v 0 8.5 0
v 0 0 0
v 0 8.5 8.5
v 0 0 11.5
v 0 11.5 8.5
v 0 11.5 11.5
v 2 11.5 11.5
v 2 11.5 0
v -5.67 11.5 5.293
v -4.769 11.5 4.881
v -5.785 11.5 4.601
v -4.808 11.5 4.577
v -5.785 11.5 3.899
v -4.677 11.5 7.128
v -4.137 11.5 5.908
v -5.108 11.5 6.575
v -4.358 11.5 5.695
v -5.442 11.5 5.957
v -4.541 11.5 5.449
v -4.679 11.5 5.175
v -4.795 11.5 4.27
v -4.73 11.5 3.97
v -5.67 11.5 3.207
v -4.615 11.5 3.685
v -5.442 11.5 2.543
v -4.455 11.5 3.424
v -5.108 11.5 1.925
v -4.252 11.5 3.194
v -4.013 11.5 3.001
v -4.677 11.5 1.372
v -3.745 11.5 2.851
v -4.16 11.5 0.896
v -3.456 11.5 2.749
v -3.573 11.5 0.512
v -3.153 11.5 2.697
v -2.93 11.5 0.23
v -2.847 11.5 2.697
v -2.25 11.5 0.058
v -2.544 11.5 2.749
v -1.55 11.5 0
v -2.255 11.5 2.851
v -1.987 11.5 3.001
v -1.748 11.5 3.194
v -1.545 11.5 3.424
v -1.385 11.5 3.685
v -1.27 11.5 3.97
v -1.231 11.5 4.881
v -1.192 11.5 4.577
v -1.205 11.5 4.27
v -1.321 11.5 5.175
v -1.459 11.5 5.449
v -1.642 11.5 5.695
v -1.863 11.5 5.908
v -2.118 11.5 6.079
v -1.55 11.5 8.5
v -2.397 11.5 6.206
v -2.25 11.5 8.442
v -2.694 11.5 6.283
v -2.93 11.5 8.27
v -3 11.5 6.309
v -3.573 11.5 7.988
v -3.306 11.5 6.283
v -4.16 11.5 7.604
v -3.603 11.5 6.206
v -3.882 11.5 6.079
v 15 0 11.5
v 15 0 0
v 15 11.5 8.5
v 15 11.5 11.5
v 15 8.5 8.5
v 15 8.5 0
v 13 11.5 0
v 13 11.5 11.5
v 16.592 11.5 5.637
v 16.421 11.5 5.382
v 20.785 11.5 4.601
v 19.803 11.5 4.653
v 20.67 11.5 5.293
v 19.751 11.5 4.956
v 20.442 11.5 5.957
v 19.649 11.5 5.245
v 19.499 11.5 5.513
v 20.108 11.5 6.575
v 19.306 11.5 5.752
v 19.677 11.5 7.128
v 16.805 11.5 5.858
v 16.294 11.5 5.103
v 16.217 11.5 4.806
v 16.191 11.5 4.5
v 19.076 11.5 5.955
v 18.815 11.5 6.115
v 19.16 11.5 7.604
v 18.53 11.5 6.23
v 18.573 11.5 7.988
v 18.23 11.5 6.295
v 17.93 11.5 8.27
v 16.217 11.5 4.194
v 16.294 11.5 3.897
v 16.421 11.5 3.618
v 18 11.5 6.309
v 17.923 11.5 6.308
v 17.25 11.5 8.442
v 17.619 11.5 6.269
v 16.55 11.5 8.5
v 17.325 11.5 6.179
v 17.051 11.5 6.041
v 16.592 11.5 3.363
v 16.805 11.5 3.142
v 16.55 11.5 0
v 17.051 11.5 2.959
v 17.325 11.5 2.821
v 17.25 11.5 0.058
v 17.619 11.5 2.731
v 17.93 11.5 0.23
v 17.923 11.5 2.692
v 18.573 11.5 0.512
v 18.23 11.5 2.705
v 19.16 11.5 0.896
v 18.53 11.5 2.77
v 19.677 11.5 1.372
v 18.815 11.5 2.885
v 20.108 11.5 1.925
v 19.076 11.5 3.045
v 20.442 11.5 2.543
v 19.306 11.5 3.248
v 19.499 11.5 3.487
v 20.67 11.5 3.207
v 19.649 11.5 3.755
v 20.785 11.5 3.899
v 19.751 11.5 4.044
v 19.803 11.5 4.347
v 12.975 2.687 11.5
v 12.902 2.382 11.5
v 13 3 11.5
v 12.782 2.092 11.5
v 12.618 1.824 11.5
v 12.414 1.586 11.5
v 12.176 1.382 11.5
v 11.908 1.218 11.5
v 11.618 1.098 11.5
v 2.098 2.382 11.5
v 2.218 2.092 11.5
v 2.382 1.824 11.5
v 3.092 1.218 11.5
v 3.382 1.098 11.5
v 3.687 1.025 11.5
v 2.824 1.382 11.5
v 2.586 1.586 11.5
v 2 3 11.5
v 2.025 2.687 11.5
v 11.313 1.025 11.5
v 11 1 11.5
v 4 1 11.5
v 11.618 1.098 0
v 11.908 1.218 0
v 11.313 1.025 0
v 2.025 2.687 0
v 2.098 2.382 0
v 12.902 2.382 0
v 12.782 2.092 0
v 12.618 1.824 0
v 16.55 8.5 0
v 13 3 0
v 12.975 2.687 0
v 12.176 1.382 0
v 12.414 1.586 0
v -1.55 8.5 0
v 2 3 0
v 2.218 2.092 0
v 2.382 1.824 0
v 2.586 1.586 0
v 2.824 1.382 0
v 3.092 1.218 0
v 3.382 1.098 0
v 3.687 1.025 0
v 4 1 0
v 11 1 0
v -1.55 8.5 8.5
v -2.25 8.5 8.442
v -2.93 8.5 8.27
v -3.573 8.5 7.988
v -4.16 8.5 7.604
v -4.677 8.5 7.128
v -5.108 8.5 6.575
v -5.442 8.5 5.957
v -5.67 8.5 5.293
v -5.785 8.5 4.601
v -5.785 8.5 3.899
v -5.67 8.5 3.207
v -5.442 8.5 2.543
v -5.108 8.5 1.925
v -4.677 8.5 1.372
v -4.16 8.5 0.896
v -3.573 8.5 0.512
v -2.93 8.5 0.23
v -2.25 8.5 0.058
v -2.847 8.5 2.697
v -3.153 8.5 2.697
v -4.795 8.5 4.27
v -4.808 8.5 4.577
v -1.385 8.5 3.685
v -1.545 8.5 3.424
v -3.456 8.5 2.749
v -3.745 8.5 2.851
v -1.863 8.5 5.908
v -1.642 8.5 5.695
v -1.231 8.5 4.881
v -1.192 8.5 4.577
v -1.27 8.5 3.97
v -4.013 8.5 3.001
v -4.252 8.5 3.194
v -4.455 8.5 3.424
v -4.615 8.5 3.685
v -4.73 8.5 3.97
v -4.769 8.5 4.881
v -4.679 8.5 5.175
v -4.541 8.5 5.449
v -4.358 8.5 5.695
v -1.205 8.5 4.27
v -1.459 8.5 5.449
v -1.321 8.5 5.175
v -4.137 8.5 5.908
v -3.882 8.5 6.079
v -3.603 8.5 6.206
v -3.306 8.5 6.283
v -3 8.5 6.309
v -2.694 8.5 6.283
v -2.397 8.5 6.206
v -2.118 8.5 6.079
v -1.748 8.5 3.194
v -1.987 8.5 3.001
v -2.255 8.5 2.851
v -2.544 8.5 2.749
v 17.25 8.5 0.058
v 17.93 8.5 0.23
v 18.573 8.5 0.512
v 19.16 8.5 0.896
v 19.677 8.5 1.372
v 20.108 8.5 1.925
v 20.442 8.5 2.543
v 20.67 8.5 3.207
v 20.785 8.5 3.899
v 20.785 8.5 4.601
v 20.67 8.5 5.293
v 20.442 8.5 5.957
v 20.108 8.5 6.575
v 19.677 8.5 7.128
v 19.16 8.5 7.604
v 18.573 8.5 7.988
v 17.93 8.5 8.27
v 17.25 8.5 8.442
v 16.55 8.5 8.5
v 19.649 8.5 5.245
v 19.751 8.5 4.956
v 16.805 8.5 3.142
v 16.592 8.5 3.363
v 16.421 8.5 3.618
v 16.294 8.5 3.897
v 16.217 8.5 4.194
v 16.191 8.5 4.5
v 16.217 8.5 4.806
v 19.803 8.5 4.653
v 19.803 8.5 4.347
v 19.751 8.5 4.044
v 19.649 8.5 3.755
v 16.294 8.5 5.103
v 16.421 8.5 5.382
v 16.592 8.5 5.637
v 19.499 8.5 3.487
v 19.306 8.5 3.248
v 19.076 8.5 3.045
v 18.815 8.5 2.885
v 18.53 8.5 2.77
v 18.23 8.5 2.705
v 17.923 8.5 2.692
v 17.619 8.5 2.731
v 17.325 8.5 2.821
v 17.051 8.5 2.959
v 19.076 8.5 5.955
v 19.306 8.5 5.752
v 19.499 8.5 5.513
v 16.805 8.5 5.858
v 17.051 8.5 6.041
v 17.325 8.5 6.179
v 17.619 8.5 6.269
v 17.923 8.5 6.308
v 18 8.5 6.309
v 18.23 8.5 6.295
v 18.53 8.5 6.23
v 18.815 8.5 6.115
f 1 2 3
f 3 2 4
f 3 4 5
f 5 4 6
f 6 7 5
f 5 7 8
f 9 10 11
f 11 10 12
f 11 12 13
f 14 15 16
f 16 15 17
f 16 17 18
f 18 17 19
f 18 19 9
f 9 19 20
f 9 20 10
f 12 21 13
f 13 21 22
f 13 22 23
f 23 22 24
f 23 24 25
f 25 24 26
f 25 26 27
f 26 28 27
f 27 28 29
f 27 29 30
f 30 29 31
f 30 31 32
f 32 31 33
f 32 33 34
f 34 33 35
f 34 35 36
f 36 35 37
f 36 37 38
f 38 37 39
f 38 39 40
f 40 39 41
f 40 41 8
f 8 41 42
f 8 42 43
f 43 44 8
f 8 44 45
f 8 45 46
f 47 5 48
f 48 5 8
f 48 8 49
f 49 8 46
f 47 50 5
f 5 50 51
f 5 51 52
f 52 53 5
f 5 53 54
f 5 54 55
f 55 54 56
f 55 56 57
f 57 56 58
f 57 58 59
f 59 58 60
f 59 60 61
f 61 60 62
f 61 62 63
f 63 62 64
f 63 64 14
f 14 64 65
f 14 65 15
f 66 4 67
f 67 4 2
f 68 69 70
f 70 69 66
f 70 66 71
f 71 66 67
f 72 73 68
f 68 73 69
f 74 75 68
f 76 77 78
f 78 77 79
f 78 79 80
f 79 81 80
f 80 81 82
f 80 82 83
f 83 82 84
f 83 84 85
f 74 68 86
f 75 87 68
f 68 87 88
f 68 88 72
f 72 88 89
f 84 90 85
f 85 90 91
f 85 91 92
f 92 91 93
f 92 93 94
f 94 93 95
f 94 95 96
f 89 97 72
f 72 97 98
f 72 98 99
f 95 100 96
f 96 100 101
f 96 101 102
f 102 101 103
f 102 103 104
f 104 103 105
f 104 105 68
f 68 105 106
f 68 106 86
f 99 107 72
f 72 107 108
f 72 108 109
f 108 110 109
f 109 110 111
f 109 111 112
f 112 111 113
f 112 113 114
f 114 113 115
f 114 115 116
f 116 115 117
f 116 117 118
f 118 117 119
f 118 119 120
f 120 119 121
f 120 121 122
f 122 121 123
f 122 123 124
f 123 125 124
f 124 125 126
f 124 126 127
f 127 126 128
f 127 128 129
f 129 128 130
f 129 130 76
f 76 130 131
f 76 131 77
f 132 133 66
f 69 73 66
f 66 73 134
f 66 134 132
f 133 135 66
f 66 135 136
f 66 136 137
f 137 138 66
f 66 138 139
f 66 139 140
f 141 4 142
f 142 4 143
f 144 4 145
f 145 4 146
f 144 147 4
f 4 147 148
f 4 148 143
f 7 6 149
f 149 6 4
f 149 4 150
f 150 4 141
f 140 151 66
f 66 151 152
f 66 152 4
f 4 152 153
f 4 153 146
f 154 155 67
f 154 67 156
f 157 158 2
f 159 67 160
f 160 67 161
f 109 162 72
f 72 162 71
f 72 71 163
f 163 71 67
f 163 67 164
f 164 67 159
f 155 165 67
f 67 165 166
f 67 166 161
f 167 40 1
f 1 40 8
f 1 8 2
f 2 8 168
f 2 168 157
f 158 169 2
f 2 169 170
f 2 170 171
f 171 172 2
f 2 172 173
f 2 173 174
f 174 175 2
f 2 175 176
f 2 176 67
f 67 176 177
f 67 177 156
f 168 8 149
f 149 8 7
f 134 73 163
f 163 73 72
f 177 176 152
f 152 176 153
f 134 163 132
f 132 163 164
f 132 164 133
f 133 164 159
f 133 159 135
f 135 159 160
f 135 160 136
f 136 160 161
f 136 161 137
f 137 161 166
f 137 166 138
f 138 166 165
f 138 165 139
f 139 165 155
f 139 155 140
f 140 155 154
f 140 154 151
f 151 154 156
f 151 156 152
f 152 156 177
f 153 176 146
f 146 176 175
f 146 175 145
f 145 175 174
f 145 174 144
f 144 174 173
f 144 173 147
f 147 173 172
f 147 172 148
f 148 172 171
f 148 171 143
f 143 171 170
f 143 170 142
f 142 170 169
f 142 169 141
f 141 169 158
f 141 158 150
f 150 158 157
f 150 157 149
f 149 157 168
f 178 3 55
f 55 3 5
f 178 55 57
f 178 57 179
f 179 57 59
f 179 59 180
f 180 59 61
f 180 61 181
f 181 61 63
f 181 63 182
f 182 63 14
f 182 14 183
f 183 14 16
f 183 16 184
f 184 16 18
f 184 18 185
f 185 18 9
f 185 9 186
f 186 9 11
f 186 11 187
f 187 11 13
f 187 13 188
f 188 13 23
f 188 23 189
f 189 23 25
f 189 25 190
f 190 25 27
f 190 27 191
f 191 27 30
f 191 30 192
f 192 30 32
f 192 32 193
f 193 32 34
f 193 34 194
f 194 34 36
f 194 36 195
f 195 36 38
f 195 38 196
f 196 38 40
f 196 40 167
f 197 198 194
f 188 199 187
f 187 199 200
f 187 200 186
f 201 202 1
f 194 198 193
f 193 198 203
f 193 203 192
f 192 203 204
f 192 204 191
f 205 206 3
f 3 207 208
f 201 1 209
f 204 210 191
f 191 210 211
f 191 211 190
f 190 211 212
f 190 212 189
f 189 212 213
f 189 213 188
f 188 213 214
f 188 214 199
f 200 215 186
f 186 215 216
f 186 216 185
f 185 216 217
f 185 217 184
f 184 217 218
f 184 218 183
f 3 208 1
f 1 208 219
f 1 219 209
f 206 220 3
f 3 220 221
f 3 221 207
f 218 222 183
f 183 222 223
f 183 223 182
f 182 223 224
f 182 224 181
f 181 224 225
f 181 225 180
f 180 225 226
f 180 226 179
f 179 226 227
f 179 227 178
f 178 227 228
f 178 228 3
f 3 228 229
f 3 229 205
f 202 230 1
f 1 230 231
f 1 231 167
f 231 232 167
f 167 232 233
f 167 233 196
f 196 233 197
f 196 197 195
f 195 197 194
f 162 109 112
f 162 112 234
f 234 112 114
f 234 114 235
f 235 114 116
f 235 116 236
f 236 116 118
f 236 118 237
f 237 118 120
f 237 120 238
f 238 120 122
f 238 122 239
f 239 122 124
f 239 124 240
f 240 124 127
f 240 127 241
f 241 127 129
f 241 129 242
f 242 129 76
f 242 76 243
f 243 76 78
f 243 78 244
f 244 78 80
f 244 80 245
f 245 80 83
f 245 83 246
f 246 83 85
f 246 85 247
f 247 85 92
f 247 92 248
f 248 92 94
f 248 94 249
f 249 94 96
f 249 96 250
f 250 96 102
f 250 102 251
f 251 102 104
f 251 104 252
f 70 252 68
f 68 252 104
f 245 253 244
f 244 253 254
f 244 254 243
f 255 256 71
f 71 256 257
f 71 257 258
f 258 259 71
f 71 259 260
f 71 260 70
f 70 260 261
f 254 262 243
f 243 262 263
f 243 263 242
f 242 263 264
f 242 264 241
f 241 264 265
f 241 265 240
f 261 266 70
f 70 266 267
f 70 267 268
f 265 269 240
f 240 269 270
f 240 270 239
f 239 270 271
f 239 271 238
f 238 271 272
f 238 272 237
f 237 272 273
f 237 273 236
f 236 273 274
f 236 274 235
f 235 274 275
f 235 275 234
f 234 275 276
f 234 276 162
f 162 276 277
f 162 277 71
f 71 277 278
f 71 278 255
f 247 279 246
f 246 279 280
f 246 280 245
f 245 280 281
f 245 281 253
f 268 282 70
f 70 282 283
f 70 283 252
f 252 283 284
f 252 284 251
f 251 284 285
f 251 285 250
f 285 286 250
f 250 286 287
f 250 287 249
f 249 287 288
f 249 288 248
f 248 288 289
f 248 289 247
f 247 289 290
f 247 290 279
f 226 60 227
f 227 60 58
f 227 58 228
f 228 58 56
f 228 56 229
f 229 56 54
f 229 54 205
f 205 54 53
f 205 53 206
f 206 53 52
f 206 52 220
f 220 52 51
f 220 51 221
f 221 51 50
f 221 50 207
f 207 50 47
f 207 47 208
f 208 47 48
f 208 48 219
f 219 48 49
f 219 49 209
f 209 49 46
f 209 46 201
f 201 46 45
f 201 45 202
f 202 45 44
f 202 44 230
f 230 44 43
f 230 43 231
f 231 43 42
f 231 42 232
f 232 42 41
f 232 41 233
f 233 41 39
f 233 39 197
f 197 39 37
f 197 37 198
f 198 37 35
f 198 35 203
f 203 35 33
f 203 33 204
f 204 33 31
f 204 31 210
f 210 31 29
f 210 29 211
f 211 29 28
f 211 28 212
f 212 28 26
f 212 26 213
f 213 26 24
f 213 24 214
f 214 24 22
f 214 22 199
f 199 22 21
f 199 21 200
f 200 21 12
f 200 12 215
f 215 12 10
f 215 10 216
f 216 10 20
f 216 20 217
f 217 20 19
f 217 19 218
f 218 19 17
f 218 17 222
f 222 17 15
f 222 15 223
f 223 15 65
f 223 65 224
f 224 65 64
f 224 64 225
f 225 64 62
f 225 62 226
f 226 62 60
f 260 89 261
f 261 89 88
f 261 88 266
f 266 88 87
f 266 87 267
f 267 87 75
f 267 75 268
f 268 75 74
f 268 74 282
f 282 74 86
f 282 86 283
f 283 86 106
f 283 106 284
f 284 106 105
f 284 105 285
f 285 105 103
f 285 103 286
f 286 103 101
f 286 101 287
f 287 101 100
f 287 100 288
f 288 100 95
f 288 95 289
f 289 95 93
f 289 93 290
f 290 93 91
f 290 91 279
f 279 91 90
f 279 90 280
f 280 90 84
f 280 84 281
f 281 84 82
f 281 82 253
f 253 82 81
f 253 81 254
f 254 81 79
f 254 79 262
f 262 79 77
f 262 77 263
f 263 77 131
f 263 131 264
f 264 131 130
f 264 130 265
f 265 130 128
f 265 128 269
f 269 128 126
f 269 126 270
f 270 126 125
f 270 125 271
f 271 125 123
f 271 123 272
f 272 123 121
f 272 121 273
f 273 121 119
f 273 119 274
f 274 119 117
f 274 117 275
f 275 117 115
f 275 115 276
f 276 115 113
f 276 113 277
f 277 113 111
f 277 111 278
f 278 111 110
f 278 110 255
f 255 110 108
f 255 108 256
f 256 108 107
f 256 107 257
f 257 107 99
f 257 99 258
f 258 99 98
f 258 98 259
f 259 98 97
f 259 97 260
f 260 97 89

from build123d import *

# Parameters (mm, degrees)
SKETCH1_W           = 15
SKETCH1_H           = 11.5
BOSS_EXTRUDE1_DEPTH = 11.5
SKETCH3_W           = 11
SKETCH3_H           = 10.5
CUT_EXTRUDE1_DEPTH  = 11.5
FILLET1_R           = 2
BOSS_EXTRUDE2_DEPTH = 3
SKETCH5_R           = 1.809208309
CUT_EXTRUDE2_DEPTH  = 3


with BuildPart() as part:
    # Sketch1 → Boss-Extrude1 (new body)
    with BuildSketch(Plane.XY):
        with Locations((7.5, 5.75)):
            Rectangle(SKETCH1_W, SKETCH1_H)
    extrude(amount=BOSS_EXTRUDE1_DEPTH)

    # Sketch3 → Cut-Extrude1 (cut)
    with BuildSketch(Plane.XY.offset(11.5)):
        with Locations((7.5, 6.25)):
            Rectangle(SKETCH3_W, SKETCH3_H)
    extrude(amount=-CUT_EXTRUDE1_DEPTH, mode=Mode.SUBTRACT)

    # Fillet1
    fillet1_edges = [part.edges().sort_by_distance(p)[0] for p in [
        (2, 1, 5.75),
        (13, 1, 5.75),
    ]]
    fillet(fillet1_edges, radius=FILLET1_R)

    # Sketch4 → Boss-Extrude2 (add)
    with BuildSketch(Plane(origin=(0, 11.5, 0), x_dir=(1, 0, 0), z_dir=(0, 1, 0))):
        with BuildLine():
            Line((0, 0), (-1.55, 0))
            ThreePointArc((-1.55, 0), (-5.8, -4.25), (-1.55, -8.5))
            Line((-1.55, -8.5), (0, -8.5))
            Line((0, -8.5), (0, 0))
        make_face()
        with BuildLine():
            Line((15, 0), (16.55, 0))
            ThreePointArc((16.55, 0), (20.8, -4.25), (16.55, -8.5))
            Line((16.55, -8.5), (15, -8.5))
            Line((15, -8.5), (15, 0))
        make_face()
    extrude(amount=-BOSS_EXTRUDE2_DEPTH)

    # Sketch5 → Cut-Extrude2 (cut)
    with BuildSketch(Plane(origin=(0, 11.5, 0), x_dir=(1, 0, 0), z_dir=(0, 1, 0))):
        with Locations((-3, -4.5)):
            Circle(SKETCH5_R)
    cut_extrude2 = extrude(amount=-CUT_EXTRUDE2_DEPTH, mode=Mode.SUBTRACT)

    # Mirror1: Cut-Extrude2 across plane
    add(cut_extrude2.mirror(Plane.ZY.offset(-7.5)), mode=Mode.SUBTRACT)


solid = part.part
